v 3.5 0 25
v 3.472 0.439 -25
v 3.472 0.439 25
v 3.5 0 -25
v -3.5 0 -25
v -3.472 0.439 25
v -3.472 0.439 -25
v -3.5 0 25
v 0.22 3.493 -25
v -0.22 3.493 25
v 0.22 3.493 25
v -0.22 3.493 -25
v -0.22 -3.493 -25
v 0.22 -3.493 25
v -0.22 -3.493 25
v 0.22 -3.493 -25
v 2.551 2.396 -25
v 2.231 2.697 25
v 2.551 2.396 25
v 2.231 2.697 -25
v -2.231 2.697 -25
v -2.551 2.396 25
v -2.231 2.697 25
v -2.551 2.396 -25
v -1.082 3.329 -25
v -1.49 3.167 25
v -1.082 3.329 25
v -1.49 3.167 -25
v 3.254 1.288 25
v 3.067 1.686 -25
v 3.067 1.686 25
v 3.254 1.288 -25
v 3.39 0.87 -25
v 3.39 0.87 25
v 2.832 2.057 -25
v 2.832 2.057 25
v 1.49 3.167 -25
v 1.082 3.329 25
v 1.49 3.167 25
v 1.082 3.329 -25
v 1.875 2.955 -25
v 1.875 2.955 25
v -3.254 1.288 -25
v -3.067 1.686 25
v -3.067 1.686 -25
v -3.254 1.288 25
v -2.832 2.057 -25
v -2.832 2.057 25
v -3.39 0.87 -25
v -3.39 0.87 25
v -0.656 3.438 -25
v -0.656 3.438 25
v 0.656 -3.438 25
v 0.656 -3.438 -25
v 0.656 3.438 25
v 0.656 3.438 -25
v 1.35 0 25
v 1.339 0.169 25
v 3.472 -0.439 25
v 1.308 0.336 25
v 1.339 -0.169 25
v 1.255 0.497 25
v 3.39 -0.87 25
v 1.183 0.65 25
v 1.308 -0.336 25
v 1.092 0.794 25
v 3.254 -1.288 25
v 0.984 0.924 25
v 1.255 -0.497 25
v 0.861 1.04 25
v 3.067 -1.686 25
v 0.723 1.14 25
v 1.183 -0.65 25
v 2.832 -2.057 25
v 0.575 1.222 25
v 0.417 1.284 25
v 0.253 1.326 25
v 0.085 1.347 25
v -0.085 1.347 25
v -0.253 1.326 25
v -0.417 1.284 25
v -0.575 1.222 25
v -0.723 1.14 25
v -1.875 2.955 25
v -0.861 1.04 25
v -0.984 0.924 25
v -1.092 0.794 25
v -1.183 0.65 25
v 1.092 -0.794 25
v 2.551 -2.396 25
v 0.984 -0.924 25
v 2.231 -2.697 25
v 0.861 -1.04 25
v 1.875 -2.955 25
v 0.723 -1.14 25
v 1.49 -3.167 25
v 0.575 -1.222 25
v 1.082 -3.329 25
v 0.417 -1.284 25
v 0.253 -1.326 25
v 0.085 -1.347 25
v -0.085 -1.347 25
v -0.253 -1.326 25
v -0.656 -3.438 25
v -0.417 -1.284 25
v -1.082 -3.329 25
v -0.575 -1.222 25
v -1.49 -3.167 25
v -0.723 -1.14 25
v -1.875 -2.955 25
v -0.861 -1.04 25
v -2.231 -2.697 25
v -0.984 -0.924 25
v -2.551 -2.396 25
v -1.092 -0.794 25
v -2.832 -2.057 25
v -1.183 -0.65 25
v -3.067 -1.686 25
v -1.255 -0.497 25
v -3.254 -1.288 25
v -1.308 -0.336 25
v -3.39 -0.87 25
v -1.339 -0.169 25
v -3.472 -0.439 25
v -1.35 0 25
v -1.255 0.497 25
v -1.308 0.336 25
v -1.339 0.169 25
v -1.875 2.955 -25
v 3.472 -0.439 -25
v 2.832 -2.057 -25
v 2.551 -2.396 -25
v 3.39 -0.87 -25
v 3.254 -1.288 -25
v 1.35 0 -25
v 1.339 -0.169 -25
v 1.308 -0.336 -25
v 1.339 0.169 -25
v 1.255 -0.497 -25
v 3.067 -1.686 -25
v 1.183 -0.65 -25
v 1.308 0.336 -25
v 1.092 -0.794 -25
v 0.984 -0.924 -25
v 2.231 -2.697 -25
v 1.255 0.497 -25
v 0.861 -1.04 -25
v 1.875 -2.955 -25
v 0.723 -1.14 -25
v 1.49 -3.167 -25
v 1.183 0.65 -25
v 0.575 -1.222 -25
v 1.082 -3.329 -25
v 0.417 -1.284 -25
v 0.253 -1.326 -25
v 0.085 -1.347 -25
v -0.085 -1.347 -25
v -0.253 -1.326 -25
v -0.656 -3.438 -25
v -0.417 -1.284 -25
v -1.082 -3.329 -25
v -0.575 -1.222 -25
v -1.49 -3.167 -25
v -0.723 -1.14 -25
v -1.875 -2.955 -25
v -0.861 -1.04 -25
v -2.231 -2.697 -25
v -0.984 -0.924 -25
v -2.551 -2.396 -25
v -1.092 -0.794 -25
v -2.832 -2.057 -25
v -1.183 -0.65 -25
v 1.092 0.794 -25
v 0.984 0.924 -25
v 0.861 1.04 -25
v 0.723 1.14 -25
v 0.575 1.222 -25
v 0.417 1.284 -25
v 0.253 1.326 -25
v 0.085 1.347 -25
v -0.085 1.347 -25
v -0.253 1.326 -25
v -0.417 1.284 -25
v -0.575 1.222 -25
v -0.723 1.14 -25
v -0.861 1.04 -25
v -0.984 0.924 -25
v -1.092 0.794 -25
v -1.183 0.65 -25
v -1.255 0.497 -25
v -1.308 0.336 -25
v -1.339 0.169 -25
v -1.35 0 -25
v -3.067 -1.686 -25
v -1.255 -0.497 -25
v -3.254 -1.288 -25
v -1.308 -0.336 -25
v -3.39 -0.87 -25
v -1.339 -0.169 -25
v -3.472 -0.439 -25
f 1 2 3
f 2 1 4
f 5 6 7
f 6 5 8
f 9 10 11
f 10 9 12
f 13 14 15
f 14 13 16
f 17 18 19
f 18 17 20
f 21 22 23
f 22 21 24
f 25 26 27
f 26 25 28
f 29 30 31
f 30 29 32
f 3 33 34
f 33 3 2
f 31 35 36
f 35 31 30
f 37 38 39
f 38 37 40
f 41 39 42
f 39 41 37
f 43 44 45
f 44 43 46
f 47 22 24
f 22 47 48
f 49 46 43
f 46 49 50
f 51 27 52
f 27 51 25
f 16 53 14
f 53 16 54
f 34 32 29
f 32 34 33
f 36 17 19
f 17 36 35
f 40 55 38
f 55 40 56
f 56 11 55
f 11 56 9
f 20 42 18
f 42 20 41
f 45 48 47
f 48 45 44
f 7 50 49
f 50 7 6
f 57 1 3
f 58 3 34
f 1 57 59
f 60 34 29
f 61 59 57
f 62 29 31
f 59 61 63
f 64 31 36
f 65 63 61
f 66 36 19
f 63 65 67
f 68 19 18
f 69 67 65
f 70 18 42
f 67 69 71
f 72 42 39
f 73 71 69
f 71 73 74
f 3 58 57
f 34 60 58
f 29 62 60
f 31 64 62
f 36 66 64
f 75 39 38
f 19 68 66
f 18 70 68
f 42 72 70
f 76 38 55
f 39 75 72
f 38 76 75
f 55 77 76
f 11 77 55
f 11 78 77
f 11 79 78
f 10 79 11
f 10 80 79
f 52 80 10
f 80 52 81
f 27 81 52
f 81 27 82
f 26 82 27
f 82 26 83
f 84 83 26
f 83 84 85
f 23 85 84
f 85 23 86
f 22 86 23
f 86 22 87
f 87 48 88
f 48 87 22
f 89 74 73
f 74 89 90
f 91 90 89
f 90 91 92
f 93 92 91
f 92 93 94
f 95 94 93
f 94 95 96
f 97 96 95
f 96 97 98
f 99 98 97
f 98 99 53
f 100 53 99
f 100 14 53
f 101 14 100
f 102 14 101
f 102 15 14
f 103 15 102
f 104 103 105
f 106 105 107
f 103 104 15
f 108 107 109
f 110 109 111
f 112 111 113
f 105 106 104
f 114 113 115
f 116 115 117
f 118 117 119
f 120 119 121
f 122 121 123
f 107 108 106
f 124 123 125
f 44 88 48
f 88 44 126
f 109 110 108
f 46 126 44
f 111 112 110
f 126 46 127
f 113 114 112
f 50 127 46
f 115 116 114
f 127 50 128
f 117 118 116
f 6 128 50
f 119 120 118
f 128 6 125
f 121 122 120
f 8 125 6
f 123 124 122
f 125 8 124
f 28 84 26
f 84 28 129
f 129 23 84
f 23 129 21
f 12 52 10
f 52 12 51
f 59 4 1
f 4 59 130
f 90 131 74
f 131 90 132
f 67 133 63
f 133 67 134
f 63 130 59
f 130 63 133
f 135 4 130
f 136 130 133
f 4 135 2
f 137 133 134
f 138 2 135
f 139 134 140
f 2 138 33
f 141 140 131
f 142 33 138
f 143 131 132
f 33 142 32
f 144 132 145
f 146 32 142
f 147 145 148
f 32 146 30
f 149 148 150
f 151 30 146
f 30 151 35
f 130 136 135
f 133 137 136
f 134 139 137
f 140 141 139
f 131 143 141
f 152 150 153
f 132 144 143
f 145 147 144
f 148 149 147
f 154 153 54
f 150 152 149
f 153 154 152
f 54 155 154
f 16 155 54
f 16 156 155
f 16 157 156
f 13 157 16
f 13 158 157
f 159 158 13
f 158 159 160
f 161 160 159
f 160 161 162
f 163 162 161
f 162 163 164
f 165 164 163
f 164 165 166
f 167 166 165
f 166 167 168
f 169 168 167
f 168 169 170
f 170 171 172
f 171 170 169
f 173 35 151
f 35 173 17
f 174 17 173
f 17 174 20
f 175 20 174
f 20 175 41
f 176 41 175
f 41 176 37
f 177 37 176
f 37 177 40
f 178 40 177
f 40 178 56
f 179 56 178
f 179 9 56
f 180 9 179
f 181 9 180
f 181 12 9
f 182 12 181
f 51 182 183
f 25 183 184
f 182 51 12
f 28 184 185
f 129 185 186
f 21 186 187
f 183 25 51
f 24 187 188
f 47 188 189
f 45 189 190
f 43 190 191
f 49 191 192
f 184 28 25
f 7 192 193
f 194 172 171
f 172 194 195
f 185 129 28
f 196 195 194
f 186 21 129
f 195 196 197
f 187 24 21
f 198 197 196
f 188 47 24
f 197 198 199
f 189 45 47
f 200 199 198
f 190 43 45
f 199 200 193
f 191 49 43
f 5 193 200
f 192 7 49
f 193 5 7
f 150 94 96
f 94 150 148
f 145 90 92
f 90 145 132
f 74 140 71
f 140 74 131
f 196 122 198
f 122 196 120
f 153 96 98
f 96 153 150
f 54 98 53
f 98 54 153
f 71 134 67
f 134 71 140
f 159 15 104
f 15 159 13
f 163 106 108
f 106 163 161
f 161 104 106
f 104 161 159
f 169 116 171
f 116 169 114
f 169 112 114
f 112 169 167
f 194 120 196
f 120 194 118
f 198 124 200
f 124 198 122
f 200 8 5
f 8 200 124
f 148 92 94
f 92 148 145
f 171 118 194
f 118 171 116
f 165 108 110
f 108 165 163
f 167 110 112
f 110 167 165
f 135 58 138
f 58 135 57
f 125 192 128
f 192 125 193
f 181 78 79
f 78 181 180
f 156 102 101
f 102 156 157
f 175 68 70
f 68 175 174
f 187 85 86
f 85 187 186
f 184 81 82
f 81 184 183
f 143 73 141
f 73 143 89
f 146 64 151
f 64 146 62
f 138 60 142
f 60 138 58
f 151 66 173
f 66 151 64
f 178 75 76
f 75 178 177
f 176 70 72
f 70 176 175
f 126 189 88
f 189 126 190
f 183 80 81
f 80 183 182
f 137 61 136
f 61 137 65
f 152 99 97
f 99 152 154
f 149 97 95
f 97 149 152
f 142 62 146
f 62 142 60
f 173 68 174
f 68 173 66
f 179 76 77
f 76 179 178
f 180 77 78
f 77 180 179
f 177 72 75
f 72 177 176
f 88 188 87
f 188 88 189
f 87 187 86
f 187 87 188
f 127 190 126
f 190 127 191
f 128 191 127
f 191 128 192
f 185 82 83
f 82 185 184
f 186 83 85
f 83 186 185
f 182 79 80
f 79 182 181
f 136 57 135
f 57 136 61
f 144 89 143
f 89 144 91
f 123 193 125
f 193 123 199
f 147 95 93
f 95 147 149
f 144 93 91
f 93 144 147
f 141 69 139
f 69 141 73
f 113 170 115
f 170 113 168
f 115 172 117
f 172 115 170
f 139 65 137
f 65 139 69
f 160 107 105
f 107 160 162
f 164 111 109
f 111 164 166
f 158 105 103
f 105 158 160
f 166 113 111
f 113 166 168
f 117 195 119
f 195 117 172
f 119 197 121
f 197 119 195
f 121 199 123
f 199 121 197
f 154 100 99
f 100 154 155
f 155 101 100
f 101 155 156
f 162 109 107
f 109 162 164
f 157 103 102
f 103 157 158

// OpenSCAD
$fn = 50;


difference() {
	union() {
		translate(v = [0, 0, -25.0000000000]) {
			cylinder(h = 50, r = 3.5000000000);
		}
	}
	union() {
		translate(v = [0, 0, -100.0000000000]) {
			cylinder(h = 200, r = 1.3500000000);
		}
	}
}
